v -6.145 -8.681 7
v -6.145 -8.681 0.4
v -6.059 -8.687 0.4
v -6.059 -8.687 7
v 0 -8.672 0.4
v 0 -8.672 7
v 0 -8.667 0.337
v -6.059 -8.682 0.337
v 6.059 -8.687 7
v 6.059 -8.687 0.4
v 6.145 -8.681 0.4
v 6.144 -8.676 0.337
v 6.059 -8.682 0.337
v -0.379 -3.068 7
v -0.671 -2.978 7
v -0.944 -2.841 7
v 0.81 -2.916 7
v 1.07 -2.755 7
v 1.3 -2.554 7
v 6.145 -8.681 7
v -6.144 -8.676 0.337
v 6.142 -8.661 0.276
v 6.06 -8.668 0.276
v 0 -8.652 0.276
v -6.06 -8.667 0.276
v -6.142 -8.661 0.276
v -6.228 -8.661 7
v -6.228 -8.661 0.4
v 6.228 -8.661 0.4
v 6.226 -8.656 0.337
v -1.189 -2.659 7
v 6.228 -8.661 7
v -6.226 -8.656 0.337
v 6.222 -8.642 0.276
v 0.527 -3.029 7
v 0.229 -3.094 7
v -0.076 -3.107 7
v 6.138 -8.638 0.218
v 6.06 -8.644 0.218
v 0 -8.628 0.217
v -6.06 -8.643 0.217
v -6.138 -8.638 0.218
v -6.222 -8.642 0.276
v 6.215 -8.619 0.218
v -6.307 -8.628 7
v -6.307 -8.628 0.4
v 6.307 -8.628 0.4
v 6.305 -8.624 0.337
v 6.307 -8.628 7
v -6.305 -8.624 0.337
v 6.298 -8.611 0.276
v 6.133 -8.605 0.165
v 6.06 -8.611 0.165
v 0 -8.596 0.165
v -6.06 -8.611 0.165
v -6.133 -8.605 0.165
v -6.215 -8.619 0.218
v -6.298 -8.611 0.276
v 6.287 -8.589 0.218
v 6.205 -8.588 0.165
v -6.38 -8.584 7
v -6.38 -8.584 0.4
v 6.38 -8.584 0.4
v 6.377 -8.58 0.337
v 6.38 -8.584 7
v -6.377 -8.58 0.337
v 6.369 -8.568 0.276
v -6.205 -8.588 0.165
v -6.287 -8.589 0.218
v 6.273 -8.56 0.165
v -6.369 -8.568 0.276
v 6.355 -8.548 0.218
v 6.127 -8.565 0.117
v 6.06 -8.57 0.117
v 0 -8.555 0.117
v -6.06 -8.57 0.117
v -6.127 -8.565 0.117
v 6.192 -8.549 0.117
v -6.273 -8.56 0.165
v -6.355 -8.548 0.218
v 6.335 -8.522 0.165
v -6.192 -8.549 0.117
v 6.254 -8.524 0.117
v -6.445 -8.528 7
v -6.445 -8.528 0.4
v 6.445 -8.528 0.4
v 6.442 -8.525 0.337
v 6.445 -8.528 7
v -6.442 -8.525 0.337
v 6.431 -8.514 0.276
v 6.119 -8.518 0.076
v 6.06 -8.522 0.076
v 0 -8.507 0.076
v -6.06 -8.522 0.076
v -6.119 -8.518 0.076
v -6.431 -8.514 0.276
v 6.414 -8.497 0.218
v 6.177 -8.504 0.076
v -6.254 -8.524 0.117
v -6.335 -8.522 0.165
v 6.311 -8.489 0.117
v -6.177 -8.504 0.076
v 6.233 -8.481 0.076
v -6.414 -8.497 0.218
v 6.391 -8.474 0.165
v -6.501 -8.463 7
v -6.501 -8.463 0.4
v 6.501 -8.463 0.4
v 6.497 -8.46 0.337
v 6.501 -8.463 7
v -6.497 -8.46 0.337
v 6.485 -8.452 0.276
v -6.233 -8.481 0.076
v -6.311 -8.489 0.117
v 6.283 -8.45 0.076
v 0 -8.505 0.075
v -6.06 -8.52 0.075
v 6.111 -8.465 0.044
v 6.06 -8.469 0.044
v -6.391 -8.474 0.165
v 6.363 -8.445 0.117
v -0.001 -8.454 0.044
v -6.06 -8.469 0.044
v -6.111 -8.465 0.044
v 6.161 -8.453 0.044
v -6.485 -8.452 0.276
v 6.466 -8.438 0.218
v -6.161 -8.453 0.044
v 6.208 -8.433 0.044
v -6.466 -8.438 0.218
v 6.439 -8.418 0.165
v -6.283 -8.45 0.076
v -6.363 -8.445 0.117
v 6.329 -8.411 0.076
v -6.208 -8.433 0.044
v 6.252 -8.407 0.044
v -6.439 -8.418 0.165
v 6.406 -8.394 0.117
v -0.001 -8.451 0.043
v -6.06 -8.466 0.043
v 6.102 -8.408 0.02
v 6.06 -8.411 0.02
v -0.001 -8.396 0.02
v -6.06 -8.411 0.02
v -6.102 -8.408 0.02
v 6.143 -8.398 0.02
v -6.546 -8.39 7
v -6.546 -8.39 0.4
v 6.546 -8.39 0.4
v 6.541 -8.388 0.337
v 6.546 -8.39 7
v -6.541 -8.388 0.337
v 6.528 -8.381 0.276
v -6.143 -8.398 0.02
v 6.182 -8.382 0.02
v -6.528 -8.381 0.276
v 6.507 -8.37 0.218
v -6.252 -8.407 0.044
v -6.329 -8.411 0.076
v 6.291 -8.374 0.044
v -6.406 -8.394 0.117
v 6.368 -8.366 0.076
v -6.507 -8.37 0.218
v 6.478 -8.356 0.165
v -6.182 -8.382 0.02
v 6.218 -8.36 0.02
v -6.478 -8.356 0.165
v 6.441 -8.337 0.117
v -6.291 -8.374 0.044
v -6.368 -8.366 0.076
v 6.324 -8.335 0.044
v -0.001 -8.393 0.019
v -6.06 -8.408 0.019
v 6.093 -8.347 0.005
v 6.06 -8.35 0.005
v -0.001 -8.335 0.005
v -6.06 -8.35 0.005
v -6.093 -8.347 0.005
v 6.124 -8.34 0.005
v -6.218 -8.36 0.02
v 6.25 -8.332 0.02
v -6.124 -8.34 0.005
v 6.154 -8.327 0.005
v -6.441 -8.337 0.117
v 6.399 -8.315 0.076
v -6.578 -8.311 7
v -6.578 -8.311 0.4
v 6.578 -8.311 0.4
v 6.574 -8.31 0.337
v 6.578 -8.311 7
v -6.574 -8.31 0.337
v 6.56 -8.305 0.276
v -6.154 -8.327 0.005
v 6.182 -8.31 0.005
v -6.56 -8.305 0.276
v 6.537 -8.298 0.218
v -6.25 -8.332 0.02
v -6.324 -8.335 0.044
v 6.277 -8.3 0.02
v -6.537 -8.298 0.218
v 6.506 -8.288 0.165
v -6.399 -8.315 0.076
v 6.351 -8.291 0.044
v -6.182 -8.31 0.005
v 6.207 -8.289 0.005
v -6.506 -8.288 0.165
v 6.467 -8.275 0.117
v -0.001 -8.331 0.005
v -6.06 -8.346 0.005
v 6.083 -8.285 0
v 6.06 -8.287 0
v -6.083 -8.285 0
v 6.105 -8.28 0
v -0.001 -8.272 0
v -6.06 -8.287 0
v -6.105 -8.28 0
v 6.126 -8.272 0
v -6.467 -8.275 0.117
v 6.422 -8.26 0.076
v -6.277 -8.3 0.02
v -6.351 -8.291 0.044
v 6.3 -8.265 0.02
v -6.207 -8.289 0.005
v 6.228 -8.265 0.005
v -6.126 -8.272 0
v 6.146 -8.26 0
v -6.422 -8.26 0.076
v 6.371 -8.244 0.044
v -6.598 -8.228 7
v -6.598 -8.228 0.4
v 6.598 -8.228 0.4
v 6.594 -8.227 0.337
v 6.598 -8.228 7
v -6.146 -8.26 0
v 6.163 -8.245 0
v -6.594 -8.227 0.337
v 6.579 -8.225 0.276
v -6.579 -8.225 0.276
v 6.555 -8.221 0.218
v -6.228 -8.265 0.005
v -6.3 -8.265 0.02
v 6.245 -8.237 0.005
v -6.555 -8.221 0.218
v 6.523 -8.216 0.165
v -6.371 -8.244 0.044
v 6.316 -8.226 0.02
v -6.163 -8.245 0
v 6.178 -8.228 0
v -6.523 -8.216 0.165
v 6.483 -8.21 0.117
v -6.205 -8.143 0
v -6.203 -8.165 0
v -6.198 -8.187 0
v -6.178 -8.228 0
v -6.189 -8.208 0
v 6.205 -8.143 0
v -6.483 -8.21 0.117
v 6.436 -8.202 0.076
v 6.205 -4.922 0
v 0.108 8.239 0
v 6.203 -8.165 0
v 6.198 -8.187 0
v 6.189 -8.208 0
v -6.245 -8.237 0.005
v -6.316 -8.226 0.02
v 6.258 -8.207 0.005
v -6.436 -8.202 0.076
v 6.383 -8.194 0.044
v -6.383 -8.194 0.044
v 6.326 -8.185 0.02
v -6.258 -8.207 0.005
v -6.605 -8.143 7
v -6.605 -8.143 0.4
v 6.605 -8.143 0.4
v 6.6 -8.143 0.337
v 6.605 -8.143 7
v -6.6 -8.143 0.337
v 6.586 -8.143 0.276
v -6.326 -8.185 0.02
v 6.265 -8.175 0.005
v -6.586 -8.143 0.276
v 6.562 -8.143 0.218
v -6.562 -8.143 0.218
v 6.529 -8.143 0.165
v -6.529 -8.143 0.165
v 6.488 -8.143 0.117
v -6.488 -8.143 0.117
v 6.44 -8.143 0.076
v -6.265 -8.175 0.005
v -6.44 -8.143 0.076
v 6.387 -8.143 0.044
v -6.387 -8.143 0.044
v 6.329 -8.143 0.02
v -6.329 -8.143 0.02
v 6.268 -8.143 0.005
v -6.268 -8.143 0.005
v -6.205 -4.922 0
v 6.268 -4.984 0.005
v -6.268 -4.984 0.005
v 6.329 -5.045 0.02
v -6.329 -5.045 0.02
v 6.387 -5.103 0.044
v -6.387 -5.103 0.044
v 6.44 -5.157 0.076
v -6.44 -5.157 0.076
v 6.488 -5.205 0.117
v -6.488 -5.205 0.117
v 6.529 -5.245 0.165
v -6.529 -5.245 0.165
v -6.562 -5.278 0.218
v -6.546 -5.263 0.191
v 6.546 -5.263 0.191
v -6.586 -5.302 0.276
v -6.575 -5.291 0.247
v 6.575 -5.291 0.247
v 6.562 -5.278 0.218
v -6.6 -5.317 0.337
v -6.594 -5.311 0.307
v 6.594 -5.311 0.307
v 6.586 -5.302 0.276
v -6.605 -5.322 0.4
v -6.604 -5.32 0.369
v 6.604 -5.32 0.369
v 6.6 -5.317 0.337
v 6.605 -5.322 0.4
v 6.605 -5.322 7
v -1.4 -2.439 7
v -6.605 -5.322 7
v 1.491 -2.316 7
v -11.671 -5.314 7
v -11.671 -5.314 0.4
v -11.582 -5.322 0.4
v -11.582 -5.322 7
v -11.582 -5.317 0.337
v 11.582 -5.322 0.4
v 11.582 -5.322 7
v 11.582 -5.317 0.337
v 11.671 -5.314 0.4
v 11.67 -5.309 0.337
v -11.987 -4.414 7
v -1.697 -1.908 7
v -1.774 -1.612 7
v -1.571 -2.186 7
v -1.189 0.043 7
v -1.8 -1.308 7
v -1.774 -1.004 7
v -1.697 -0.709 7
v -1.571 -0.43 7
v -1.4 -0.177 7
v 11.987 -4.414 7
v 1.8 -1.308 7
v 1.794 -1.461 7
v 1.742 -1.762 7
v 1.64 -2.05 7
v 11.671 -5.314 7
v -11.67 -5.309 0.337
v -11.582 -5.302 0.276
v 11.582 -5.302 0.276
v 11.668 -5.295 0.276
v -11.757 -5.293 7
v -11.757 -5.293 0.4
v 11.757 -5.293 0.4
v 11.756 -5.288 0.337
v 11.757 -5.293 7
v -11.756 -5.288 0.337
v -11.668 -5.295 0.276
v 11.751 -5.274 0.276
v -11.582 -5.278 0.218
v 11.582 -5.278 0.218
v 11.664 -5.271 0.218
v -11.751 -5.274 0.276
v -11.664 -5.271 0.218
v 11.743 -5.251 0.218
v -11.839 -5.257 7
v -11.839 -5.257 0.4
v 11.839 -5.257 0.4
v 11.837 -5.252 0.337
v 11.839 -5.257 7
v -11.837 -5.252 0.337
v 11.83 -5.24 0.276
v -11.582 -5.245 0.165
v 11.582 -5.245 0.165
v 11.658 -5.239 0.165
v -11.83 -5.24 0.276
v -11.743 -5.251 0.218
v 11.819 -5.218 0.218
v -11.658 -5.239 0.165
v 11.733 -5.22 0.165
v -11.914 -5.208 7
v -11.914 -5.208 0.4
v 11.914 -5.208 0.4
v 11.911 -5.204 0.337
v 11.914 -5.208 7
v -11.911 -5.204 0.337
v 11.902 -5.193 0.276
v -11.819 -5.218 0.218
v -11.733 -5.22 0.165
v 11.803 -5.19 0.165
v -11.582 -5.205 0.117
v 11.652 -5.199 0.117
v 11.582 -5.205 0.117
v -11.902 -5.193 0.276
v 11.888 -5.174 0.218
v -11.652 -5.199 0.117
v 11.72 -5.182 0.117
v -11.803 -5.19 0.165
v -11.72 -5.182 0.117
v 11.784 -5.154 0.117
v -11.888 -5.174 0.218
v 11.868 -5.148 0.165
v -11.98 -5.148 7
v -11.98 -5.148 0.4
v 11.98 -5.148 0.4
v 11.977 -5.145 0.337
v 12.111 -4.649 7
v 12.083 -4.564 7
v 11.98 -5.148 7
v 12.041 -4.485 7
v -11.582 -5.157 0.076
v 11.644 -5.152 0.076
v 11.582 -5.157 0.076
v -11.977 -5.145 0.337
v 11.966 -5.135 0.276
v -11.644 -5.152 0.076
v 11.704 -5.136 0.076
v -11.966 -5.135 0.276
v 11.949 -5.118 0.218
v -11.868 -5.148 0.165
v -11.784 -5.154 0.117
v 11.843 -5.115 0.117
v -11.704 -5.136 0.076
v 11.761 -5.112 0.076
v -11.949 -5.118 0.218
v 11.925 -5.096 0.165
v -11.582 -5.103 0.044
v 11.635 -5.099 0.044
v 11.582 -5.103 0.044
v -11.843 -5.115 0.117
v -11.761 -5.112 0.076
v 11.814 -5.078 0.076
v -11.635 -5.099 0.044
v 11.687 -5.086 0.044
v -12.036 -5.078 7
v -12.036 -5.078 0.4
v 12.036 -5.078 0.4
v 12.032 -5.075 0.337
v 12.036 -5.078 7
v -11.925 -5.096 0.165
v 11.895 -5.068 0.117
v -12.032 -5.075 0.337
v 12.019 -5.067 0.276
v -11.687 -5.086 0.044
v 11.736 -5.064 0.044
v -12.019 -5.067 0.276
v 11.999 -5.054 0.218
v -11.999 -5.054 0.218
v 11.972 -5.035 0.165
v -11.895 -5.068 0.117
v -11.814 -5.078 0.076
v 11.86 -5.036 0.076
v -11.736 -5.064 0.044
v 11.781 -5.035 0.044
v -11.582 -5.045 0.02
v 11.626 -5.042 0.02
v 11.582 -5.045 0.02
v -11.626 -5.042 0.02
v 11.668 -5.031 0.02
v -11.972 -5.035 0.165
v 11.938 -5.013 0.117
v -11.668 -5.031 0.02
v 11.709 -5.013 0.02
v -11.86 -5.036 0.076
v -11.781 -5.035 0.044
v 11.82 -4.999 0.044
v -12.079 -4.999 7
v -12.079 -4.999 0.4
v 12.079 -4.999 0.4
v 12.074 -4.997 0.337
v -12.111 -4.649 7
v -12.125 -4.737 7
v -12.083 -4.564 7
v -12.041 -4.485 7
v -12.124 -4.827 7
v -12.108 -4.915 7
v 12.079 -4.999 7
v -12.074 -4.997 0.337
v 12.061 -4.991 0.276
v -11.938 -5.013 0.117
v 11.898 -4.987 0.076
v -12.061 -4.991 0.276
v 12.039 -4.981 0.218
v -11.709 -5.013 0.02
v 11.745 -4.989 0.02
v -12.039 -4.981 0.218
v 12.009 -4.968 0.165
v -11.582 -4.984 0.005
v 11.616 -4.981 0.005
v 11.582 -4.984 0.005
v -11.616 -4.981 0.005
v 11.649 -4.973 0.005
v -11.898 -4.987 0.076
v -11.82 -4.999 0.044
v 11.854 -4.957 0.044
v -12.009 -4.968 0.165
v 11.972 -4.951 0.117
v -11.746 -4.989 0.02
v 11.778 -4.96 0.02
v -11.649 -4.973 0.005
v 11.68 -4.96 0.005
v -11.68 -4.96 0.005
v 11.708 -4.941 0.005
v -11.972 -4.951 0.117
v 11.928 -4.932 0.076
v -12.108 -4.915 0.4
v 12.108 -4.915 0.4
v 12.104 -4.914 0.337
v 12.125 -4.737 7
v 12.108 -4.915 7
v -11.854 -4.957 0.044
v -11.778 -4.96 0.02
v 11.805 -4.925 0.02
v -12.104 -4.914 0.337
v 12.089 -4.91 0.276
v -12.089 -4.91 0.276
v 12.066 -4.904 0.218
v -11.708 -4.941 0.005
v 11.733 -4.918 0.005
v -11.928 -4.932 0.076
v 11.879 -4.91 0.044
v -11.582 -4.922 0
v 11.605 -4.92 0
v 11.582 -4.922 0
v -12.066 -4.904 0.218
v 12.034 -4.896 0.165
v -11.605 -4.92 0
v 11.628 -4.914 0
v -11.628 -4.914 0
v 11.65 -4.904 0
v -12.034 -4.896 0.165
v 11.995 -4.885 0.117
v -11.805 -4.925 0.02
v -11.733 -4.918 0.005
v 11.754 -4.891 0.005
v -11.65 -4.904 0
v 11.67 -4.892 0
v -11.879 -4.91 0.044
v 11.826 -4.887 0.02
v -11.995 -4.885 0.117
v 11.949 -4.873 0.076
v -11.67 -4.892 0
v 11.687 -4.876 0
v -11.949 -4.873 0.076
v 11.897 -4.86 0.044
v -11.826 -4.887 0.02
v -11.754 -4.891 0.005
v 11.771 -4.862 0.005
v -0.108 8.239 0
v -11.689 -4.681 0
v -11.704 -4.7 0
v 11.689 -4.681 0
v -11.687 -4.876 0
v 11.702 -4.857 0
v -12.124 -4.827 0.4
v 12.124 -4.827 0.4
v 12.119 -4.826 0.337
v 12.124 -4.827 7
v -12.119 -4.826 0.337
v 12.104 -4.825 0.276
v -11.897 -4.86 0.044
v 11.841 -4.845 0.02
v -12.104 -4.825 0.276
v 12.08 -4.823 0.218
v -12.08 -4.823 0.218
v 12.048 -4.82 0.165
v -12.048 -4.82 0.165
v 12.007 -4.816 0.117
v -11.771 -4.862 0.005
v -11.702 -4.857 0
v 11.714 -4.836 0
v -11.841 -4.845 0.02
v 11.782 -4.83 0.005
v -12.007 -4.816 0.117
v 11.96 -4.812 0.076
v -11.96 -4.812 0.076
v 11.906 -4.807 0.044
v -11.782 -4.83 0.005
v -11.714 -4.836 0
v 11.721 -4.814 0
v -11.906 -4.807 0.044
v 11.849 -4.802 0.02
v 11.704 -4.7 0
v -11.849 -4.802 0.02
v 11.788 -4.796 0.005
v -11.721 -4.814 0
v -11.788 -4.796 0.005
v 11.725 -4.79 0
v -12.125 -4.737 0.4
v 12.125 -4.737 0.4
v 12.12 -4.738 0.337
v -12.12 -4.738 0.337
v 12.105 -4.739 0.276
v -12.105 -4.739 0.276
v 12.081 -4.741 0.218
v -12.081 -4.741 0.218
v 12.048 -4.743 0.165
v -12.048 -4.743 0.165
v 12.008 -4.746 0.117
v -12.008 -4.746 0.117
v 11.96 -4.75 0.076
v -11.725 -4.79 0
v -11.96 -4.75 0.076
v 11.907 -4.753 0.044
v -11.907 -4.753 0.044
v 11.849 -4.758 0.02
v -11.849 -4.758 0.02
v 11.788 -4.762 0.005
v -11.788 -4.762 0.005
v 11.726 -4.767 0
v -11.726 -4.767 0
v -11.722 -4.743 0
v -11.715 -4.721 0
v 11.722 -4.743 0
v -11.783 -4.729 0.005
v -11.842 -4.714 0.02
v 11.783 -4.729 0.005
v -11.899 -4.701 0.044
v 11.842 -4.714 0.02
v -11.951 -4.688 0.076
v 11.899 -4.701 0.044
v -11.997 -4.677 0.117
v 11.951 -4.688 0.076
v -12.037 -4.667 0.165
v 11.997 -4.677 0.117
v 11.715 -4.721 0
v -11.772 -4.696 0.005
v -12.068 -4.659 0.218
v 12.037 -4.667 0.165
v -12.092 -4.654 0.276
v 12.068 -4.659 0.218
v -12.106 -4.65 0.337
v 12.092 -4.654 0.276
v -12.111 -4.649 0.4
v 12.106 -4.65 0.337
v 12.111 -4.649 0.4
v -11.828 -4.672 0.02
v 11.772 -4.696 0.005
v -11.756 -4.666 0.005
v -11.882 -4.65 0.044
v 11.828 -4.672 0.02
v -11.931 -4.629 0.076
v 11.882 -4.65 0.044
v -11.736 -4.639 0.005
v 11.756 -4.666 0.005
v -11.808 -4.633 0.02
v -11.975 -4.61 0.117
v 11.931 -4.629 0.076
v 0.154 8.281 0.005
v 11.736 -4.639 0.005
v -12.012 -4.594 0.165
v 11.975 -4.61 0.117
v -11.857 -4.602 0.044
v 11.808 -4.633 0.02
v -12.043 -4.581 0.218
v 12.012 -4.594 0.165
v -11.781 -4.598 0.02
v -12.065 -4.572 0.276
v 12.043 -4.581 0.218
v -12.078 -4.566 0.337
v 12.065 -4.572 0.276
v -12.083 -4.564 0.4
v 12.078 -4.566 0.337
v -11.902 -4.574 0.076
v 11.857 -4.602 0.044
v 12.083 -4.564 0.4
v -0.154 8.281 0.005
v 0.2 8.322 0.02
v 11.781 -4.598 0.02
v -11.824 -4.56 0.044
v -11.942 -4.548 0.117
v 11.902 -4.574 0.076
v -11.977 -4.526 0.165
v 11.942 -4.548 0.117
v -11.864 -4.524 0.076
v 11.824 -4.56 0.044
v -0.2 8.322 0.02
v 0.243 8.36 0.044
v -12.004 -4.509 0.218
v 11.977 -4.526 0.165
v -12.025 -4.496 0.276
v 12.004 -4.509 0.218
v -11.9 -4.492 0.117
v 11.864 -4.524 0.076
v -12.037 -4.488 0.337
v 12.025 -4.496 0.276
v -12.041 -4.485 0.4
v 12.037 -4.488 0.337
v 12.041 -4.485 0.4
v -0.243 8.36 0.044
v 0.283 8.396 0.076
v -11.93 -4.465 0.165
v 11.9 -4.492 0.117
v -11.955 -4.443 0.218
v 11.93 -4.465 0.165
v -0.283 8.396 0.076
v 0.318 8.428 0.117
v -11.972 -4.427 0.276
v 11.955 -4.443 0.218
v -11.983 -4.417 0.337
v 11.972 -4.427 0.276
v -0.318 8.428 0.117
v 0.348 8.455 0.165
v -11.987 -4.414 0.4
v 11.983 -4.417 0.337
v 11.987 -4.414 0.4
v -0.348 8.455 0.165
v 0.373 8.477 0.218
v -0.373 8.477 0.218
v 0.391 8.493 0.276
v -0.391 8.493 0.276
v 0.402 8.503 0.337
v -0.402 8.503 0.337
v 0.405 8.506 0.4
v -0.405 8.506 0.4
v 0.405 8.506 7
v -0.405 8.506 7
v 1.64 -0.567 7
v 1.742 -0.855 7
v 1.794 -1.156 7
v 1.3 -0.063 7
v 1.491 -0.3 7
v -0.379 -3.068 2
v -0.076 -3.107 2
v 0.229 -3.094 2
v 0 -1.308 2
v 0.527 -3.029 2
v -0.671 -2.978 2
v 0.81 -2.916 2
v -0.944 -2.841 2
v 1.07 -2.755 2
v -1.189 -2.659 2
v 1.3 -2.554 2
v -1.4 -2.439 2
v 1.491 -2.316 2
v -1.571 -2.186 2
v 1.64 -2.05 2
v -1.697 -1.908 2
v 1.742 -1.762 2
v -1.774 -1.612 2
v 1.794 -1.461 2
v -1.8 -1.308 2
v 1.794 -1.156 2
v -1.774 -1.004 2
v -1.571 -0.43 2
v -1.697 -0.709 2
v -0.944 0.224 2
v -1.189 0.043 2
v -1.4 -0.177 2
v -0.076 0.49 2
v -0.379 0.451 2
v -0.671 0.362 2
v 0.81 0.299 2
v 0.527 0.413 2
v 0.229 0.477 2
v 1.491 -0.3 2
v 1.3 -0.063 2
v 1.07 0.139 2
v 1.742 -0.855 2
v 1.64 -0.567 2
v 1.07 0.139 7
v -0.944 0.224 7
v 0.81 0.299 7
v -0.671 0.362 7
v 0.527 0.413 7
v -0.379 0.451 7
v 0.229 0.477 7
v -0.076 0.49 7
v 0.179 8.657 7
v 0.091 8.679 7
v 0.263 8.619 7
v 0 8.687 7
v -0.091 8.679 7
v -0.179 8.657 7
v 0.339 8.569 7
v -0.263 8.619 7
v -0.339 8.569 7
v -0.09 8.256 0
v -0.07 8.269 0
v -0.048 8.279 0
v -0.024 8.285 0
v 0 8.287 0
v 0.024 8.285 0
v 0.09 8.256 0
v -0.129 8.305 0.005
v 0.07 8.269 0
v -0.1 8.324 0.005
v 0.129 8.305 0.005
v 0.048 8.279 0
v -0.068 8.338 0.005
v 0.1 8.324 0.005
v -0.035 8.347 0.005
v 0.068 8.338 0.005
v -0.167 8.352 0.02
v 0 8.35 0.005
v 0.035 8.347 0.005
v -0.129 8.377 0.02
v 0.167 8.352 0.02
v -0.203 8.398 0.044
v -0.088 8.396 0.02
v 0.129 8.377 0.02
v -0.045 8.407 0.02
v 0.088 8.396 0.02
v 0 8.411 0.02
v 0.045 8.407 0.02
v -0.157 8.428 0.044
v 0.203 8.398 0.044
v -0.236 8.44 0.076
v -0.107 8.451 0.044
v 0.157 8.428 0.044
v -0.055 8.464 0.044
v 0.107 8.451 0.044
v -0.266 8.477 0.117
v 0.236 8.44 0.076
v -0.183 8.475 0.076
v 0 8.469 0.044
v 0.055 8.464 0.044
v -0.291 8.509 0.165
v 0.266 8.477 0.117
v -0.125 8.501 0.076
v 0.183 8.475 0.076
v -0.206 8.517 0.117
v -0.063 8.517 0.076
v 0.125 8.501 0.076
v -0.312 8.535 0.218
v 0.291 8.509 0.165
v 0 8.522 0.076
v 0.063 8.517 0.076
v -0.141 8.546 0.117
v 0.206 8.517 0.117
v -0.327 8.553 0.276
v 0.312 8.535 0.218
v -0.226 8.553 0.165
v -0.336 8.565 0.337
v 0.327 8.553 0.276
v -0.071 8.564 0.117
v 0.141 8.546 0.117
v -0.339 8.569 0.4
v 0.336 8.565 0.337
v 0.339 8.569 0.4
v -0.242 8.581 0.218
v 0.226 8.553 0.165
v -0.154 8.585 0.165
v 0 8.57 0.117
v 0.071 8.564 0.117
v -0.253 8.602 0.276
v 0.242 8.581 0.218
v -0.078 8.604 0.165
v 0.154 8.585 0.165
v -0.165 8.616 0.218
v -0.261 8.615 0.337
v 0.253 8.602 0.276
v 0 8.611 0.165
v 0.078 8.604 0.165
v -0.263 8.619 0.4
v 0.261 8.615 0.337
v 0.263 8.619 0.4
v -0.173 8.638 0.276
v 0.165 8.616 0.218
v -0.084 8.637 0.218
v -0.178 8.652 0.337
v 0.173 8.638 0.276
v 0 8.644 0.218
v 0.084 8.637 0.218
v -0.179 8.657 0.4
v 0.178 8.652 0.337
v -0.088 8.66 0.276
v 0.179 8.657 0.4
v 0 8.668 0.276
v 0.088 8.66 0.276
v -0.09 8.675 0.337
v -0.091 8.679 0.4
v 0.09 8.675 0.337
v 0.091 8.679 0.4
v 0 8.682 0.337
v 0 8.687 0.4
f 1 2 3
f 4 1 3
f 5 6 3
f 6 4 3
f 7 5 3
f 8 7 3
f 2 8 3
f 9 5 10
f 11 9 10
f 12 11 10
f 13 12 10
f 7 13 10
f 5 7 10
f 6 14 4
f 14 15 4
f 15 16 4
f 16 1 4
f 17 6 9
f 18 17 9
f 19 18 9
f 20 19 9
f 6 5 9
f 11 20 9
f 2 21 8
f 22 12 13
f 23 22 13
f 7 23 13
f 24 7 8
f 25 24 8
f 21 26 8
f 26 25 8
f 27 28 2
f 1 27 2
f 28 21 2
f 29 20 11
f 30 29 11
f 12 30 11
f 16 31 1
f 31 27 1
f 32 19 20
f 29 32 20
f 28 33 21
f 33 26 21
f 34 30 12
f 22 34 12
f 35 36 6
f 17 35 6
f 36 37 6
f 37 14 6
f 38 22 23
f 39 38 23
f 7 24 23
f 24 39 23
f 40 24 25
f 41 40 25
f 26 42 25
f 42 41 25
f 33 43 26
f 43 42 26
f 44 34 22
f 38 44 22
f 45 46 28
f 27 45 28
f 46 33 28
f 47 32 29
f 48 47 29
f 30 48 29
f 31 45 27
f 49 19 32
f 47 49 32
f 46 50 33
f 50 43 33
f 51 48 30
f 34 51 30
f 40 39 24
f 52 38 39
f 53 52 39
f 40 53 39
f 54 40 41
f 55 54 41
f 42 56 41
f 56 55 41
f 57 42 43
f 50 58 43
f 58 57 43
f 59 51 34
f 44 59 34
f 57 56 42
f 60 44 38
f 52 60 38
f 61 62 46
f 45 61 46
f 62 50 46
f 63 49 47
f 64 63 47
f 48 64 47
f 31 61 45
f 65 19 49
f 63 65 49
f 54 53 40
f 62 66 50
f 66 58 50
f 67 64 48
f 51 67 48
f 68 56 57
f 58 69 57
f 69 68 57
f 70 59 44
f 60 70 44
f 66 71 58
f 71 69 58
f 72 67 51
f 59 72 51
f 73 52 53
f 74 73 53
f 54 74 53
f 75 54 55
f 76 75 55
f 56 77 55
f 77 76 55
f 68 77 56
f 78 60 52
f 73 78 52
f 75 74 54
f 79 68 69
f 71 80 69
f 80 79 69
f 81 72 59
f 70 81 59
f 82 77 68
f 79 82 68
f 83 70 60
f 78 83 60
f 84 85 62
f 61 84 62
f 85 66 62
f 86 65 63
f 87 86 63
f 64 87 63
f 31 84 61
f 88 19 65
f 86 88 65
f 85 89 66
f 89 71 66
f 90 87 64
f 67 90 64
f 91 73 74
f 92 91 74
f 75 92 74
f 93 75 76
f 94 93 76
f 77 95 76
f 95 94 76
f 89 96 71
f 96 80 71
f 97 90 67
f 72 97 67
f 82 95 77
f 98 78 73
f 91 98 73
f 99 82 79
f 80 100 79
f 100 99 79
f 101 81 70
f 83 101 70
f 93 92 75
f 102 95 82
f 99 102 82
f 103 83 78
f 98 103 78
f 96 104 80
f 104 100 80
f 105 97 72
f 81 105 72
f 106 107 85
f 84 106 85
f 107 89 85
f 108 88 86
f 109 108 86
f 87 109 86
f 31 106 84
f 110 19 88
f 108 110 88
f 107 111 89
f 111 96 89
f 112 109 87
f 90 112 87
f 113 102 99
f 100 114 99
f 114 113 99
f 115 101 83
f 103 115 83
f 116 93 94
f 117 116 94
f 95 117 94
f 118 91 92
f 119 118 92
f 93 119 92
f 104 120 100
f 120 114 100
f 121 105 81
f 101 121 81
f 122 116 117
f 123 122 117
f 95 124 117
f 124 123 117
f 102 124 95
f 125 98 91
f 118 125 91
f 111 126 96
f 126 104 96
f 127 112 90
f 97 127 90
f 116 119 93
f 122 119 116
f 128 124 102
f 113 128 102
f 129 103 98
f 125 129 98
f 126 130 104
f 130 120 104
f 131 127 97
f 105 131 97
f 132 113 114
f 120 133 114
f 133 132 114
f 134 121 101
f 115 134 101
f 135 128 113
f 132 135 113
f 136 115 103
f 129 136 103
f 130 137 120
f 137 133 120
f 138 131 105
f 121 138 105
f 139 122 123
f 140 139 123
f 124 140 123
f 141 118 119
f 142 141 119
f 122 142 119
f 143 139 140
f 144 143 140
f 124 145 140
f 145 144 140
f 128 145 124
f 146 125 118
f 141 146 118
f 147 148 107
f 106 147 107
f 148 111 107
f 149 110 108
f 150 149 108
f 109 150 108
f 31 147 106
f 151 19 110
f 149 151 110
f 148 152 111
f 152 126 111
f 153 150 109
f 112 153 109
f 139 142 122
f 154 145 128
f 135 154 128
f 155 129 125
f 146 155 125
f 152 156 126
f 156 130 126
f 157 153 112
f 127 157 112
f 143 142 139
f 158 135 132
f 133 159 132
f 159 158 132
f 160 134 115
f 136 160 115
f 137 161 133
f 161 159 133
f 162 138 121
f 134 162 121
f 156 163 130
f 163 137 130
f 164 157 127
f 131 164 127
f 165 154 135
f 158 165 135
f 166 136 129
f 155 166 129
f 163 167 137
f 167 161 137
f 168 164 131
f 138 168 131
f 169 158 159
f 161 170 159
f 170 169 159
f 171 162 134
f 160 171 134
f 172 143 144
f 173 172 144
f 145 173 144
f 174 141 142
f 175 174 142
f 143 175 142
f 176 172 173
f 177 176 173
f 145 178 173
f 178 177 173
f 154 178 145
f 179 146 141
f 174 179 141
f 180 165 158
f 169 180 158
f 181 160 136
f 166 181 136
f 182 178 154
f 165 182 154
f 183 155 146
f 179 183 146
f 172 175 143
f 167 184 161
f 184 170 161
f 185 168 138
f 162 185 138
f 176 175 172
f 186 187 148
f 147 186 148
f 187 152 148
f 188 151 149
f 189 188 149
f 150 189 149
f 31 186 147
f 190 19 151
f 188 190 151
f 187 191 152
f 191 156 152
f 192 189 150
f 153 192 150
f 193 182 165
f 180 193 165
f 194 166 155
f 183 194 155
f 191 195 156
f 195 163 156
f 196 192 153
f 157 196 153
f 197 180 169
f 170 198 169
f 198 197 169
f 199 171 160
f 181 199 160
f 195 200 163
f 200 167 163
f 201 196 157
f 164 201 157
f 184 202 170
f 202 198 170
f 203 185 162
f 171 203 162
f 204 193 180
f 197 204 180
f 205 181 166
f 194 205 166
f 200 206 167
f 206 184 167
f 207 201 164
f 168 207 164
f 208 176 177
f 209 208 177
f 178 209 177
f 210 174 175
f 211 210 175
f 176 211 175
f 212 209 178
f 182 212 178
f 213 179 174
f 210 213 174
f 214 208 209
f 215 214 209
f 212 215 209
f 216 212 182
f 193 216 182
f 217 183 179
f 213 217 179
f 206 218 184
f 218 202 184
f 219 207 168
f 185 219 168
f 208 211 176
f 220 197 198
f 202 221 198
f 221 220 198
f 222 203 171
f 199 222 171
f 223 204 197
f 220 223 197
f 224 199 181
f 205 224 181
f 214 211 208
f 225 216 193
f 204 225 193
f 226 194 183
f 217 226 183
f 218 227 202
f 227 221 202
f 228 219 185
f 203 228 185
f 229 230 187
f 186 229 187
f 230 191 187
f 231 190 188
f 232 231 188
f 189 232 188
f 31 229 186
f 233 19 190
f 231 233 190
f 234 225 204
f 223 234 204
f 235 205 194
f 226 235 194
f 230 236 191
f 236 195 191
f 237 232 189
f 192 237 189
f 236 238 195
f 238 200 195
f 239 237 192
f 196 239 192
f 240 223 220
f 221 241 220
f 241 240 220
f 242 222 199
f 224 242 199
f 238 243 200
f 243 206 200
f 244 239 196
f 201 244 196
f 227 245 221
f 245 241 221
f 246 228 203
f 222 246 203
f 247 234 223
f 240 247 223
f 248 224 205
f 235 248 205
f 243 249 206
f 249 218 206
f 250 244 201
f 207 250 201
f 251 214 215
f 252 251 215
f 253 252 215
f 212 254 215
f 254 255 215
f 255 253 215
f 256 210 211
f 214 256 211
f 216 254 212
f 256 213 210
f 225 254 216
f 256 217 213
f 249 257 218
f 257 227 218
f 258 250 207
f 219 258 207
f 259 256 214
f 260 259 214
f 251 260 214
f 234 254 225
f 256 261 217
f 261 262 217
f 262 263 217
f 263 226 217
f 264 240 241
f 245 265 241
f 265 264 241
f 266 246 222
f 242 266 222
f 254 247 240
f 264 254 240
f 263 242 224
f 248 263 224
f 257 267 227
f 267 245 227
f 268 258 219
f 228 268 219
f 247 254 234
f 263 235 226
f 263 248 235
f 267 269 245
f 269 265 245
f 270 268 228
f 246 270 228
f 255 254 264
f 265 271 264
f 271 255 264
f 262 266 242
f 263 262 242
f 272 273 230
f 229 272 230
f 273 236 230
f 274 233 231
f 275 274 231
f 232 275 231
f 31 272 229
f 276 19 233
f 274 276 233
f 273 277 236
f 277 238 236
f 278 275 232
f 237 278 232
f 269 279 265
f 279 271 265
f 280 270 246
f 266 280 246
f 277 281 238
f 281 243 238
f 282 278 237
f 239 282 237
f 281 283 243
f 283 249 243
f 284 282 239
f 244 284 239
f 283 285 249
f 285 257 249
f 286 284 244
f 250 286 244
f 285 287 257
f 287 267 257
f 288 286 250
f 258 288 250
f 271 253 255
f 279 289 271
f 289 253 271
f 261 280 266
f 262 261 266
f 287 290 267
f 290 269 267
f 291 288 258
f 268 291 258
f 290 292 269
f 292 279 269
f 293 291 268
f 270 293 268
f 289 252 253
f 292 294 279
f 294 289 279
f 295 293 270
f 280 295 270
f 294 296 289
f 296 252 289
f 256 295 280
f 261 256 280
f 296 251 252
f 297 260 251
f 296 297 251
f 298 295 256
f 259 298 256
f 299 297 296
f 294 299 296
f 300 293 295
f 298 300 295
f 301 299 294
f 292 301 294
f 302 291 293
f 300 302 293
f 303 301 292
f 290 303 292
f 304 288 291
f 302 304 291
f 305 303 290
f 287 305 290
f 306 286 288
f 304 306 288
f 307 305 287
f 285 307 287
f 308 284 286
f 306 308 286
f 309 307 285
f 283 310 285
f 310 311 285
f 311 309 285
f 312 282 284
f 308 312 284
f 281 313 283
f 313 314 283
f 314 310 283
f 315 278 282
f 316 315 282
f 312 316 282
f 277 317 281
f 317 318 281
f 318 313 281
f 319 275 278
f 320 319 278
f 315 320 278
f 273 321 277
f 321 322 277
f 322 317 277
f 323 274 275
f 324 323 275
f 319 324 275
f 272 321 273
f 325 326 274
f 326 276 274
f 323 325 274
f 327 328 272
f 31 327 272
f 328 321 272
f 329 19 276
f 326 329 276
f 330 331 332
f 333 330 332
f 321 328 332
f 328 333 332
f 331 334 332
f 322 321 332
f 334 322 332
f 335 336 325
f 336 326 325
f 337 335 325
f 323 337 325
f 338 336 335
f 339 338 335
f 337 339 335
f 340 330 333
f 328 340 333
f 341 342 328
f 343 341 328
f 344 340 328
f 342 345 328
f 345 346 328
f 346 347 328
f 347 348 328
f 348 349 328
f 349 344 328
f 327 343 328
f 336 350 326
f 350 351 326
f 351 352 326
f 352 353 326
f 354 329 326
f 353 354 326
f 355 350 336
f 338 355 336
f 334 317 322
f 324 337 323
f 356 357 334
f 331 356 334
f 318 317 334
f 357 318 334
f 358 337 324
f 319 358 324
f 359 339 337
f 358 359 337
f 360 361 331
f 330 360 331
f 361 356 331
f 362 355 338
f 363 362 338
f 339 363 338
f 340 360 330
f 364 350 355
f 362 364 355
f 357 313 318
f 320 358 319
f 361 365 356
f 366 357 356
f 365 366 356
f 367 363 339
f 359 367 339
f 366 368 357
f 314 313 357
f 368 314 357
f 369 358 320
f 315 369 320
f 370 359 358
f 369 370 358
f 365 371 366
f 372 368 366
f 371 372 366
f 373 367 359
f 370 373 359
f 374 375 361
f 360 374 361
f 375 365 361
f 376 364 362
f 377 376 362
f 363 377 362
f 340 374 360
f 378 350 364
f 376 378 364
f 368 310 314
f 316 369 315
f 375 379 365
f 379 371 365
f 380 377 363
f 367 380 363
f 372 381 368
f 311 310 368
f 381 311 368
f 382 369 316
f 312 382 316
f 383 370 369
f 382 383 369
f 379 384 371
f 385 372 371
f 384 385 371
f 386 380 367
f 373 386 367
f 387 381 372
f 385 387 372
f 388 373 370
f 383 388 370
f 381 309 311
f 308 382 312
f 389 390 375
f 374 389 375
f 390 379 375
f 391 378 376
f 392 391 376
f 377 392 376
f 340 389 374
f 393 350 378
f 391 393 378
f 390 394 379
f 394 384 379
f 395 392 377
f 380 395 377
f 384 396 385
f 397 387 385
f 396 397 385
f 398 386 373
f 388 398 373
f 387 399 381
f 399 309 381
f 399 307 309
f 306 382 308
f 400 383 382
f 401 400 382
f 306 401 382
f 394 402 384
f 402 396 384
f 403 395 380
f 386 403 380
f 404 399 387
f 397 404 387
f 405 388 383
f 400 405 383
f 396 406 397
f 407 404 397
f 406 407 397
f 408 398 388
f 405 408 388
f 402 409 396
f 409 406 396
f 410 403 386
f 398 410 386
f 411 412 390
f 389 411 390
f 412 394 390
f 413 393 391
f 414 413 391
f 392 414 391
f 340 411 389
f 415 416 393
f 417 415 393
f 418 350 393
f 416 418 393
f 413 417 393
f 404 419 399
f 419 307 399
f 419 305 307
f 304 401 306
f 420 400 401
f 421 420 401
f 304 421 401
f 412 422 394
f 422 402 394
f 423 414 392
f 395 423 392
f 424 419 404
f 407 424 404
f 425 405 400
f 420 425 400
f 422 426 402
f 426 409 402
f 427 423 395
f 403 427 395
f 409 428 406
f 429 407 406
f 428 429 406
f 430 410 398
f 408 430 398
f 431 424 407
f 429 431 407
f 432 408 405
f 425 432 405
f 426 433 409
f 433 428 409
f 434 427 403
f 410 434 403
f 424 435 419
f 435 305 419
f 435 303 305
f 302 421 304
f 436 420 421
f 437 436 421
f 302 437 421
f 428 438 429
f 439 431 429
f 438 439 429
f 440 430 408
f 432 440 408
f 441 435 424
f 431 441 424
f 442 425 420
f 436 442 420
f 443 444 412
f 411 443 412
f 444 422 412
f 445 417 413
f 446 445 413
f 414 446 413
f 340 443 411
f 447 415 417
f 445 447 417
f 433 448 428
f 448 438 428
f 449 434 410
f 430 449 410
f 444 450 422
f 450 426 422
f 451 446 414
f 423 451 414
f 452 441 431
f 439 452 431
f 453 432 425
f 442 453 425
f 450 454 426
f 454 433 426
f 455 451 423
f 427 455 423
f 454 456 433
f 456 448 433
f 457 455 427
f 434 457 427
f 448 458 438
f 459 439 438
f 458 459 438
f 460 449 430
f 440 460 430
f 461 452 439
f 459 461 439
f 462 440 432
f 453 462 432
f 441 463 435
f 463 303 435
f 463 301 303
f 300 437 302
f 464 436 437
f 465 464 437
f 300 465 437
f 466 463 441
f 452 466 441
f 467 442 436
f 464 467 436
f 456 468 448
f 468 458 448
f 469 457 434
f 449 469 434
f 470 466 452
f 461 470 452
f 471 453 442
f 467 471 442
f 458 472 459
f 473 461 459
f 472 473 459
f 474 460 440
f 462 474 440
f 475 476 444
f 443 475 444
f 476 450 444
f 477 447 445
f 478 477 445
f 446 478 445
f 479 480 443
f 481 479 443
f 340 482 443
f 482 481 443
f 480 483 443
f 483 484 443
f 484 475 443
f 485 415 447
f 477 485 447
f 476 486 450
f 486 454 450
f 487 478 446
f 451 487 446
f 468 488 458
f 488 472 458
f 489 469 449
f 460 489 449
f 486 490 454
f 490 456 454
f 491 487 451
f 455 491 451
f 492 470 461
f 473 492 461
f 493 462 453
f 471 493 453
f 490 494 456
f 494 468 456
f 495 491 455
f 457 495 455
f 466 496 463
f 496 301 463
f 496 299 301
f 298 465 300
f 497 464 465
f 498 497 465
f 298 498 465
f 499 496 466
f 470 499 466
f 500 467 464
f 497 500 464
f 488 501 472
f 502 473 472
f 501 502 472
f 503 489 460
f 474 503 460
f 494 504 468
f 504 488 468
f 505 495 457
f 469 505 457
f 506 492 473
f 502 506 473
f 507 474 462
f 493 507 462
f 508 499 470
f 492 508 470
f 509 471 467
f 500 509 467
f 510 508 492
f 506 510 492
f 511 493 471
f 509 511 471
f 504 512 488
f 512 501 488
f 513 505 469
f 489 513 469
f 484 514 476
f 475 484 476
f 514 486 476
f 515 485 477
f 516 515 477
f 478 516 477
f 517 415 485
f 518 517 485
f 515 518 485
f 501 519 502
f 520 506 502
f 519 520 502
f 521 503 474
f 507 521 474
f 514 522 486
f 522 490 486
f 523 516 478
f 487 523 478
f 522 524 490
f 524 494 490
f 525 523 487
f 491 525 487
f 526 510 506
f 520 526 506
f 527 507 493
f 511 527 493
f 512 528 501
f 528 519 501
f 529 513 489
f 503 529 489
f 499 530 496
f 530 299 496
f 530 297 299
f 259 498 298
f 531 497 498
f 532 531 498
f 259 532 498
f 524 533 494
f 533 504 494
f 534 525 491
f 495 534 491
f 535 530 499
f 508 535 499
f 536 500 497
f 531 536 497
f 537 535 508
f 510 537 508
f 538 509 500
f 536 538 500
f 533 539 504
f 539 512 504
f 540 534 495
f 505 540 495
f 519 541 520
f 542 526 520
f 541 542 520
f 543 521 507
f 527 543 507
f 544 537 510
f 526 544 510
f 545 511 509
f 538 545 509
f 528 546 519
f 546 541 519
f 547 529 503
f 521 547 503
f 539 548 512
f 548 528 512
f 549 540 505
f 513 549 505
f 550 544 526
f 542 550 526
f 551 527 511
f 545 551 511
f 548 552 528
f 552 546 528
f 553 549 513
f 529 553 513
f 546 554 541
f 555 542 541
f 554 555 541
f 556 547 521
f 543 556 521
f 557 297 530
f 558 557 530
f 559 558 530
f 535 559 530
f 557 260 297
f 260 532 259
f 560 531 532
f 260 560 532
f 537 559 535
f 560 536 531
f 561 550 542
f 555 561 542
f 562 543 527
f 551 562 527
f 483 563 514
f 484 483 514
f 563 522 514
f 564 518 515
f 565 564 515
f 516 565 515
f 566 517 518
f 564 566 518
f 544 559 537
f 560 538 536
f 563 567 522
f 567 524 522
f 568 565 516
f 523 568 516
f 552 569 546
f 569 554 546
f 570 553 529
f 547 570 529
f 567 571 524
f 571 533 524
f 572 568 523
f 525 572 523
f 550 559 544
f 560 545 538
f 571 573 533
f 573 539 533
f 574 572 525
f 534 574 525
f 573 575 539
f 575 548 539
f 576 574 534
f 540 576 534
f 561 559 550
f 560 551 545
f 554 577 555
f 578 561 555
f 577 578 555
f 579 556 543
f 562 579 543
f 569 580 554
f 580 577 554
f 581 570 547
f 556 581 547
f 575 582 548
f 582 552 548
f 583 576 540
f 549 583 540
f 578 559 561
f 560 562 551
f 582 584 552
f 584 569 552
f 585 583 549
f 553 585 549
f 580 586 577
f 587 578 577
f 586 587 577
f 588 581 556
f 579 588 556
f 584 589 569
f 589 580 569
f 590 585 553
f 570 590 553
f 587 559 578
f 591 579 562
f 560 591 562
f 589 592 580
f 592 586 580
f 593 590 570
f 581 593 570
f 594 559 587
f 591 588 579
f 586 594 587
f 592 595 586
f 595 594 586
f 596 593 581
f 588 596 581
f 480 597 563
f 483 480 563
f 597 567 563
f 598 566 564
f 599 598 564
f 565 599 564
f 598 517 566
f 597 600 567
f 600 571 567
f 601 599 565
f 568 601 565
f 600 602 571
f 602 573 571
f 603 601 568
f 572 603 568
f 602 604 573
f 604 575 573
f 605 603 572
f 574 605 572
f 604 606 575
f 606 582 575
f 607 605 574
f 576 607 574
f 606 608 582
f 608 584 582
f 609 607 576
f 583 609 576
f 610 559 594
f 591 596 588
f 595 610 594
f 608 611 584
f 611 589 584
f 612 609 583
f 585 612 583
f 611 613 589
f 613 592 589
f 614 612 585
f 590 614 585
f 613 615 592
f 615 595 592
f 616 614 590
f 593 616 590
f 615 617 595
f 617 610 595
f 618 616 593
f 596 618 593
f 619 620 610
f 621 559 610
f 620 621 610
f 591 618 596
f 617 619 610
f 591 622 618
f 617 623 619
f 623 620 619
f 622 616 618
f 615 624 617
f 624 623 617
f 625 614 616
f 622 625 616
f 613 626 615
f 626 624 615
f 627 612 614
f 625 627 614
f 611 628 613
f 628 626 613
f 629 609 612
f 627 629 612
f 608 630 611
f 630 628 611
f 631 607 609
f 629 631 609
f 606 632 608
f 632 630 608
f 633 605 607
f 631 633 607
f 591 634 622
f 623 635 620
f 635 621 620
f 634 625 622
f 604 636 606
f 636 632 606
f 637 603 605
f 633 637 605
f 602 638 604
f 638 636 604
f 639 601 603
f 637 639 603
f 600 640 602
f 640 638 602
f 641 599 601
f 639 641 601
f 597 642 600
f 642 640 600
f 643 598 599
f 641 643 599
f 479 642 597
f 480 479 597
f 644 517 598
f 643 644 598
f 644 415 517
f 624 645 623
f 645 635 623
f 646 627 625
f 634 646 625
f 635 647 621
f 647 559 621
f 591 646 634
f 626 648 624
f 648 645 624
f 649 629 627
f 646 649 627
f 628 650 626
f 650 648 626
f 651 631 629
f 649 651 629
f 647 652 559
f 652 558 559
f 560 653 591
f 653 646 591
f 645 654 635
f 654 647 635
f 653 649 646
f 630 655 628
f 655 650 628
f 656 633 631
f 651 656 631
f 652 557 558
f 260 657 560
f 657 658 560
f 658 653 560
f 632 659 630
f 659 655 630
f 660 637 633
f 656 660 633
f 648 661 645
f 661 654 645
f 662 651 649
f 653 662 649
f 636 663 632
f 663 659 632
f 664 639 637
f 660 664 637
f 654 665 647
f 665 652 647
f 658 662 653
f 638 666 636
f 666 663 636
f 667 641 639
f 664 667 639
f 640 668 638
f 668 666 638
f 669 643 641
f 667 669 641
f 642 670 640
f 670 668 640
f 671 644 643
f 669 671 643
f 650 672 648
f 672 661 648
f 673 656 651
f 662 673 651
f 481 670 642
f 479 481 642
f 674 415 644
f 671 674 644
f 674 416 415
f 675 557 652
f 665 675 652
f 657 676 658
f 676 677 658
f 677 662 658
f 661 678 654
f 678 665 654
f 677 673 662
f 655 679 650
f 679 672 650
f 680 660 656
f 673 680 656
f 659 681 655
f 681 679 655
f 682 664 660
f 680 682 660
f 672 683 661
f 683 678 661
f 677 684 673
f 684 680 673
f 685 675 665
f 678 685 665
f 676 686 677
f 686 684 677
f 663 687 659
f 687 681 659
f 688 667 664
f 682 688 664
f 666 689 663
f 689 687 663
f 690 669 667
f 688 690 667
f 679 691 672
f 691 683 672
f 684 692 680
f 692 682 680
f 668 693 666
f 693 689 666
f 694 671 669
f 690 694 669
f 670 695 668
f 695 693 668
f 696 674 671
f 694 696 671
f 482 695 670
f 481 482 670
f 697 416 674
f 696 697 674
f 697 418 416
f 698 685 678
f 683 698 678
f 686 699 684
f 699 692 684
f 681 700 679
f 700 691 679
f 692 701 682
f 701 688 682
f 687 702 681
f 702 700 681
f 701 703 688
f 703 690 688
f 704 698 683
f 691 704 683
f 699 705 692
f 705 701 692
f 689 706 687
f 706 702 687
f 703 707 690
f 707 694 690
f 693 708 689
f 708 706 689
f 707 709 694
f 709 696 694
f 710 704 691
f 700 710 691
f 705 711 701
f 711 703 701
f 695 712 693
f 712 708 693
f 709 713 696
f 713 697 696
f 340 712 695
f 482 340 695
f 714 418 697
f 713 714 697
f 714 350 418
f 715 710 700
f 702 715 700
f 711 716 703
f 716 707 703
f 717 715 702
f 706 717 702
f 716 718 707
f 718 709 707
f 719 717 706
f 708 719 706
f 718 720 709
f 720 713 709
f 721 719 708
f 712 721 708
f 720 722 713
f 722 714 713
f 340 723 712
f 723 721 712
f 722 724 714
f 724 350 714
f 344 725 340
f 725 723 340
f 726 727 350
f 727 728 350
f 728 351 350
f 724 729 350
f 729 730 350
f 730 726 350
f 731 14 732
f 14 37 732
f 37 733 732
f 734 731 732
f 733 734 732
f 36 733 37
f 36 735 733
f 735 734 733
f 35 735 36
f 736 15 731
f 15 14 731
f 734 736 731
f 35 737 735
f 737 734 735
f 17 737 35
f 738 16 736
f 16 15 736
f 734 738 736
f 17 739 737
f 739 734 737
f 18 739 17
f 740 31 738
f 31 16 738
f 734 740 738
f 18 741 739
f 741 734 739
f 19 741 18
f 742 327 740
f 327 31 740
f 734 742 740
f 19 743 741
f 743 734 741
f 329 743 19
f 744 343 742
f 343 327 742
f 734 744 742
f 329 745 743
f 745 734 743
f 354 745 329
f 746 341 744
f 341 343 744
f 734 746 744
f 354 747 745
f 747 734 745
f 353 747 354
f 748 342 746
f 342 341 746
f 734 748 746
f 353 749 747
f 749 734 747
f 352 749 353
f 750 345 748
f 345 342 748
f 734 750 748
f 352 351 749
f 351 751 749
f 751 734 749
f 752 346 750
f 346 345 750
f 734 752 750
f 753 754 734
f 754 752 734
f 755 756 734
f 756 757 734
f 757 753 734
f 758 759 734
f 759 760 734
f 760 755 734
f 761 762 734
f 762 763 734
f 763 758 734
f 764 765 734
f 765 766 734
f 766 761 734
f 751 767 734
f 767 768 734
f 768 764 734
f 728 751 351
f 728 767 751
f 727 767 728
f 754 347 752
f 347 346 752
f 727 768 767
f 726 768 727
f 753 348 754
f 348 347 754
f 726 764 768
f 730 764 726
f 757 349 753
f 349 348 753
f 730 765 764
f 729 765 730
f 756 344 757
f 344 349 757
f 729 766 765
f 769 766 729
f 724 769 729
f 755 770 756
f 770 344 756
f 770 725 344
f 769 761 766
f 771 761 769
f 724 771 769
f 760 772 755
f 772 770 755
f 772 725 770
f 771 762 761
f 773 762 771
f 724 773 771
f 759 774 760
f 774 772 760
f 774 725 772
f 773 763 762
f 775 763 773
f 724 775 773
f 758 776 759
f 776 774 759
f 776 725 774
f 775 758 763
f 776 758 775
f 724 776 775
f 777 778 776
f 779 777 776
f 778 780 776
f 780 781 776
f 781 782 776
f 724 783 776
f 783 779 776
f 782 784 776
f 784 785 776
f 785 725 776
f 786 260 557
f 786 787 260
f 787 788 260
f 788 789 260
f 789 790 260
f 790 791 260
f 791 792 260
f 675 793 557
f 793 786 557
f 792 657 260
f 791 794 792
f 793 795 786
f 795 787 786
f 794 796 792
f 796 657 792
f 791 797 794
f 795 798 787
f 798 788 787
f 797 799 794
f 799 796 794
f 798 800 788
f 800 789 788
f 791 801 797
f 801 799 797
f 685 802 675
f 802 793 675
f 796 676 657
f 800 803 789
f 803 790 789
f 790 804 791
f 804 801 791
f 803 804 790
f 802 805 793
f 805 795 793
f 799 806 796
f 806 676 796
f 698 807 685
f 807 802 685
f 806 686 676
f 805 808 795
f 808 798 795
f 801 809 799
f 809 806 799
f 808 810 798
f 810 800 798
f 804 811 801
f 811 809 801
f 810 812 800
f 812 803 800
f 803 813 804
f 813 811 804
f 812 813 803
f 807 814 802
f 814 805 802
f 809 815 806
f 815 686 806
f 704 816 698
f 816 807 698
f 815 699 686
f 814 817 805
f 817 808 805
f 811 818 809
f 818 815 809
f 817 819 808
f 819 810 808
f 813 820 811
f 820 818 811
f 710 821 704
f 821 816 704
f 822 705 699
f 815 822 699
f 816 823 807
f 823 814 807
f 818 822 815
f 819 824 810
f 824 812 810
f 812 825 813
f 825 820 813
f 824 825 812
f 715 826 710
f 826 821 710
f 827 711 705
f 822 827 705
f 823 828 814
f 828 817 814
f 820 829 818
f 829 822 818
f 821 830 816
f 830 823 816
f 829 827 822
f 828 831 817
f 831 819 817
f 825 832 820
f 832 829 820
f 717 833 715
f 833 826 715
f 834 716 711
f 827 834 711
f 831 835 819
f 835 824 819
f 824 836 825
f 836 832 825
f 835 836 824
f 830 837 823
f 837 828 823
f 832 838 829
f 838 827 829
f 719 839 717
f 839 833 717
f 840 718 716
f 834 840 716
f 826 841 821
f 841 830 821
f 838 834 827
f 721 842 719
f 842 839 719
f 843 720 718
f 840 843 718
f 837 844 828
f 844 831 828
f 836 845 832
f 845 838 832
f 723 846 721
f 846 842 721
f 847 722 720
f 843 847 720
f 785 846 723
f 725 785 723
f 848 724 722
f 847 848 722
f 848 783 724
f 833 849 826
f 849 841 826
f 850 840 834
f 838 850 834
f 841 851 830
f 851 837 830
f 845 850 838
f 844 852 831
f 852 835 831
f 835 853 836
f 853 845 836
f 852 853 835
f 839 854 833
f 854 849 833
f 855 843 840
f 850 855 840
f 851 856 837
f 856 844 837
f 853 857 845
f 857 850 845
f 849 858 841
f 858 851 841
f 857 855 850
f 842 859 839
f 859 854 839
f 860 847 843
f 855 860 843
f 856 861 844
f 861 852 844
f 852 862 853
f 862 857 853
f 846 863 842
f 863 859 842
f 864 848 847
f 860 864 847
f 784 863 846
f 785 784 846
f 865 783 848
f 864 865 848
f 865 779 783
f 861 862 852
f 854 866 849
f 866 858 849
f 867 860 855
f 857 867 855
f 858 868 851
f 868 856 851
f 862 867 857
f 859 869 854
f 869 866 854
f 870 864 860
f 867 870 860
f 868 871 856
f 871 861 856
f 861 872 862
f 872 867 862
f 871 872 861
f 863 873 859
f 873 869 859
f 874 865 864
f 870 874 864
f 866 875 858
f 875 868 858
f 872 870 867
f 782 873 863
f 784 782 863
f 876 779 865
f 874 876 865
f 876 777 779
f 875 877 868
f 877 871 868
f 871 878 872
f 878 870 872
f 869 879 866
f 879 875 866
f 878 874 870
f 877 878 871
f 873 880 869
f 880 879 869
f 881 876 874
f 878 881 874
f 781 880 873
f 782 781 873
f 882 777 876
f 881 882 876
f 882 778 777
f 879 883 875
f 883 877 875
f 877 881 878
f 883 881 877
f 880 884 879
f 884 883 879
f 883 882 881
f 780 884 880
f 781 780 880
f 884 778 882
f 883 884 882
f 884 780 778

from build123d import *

# Parameters (mm, degrees)
SKETCH_1_R      = 1.8
EXTRUDE_1_DEPTH = 7
SKETCH_2_R      = 1.8
EXTRUDE_2_DEPTH = 2
FILLET_1_R      = 0.4


with BuildPart() as part:
    # 草图1 → 凸台-拉伸1 (new body)
    with BuildSketch(Plane.XY):
        with BuildLine():
            Line((-0.405379361, 8.506127058), (-11.987060741, -4.413883456))
            ThreePointArc((-11.987060741, -4.413883456), (-12.07878067, -4.999252001), (-11.58168138, -5.321682108))
            Line((-11.58168138, -5.321682108), (-6.605215139, -5.321682108))
            Line((-6.605215139, -5.321682108), (-6.605215139, -8.142739227))
            ThreePointArc((-6.605215139, -8.142739227), (-6.445283211, -8.528172909), (-6.059454045, -8.687148374))
            Line((-6.059454045, -8.687148374), (0, -8.672119378))
            Line((0, -8.672119378), (6.059454045, -8.687148374))
            ThreePointArc((6.059454045, -8.687148374), (6.445283211, -8.528172909), (6.605215139, -8.142739227))
            Line((6.605215139, -8.142739227), (6.605215139, -5.321682108))
            Line((6.605215139, -5.321682108), (11.58168138, -5.321682108))
            ThreePointArc((11.58168138, -5.321682108), (12.07878067, -4.999252001), (11.987060741, -4.413883456))
            Line((11.987060741, -4.413883456), (0.405379361, 8.506127058))
            ThreePointArc((0.405379361, 8.506127058), (0, 8.687150048), (-0.405379361, 8.506127058))
        make_face()
        with Locations((0, -1.308282587)):
            Circle(SKETCH_1_R, mode=Mode.SUBTRACT)
    extrude(amount=EXTRUDE_1_DEPTH)

    # 草图2 → 凸台-拉伸2 (add)
    with BuildSketch(Plane(origin=(0, 0, 0), x_dir=(-1, 0, 0), z_dir=(0, 0, -1))):
        with Locations((0, -1.308282587)):
            Circle(SKETCH_2_R)
    extrude(amount=-EXTRUDE_2_DEPTH)

    # 圆角1
    fillet_1_edges = [part.edges().sort_by_distance(p)[0] for p in [
        (6.196220051, 2.046121801, 0),
        (12.07878067, -4.999252001, 0),
        (9.09344826, -5.321682108, 0),
        (6.605215139, -6.732210668, 0),
        (6.445283211, -8.528172909, 0),
        (3.029727022, -8.679633876, 0),
        (-3.029727022, -8.679633876, 0),
        (-6.445283211, -8.528172909, 0),
        (-6.605215139, -6.732210668, 0),
        (-9.09344826, -5.321682108, 0),
        (-12.07878067, -4.999252001, 0),
        (-6.196220051, 2.046121801, 0),
        (0, 8.687150048, 0),
    ]]
    fillet(fillet_1_edges, radius=FILLET_1_R)


solid = part.part
